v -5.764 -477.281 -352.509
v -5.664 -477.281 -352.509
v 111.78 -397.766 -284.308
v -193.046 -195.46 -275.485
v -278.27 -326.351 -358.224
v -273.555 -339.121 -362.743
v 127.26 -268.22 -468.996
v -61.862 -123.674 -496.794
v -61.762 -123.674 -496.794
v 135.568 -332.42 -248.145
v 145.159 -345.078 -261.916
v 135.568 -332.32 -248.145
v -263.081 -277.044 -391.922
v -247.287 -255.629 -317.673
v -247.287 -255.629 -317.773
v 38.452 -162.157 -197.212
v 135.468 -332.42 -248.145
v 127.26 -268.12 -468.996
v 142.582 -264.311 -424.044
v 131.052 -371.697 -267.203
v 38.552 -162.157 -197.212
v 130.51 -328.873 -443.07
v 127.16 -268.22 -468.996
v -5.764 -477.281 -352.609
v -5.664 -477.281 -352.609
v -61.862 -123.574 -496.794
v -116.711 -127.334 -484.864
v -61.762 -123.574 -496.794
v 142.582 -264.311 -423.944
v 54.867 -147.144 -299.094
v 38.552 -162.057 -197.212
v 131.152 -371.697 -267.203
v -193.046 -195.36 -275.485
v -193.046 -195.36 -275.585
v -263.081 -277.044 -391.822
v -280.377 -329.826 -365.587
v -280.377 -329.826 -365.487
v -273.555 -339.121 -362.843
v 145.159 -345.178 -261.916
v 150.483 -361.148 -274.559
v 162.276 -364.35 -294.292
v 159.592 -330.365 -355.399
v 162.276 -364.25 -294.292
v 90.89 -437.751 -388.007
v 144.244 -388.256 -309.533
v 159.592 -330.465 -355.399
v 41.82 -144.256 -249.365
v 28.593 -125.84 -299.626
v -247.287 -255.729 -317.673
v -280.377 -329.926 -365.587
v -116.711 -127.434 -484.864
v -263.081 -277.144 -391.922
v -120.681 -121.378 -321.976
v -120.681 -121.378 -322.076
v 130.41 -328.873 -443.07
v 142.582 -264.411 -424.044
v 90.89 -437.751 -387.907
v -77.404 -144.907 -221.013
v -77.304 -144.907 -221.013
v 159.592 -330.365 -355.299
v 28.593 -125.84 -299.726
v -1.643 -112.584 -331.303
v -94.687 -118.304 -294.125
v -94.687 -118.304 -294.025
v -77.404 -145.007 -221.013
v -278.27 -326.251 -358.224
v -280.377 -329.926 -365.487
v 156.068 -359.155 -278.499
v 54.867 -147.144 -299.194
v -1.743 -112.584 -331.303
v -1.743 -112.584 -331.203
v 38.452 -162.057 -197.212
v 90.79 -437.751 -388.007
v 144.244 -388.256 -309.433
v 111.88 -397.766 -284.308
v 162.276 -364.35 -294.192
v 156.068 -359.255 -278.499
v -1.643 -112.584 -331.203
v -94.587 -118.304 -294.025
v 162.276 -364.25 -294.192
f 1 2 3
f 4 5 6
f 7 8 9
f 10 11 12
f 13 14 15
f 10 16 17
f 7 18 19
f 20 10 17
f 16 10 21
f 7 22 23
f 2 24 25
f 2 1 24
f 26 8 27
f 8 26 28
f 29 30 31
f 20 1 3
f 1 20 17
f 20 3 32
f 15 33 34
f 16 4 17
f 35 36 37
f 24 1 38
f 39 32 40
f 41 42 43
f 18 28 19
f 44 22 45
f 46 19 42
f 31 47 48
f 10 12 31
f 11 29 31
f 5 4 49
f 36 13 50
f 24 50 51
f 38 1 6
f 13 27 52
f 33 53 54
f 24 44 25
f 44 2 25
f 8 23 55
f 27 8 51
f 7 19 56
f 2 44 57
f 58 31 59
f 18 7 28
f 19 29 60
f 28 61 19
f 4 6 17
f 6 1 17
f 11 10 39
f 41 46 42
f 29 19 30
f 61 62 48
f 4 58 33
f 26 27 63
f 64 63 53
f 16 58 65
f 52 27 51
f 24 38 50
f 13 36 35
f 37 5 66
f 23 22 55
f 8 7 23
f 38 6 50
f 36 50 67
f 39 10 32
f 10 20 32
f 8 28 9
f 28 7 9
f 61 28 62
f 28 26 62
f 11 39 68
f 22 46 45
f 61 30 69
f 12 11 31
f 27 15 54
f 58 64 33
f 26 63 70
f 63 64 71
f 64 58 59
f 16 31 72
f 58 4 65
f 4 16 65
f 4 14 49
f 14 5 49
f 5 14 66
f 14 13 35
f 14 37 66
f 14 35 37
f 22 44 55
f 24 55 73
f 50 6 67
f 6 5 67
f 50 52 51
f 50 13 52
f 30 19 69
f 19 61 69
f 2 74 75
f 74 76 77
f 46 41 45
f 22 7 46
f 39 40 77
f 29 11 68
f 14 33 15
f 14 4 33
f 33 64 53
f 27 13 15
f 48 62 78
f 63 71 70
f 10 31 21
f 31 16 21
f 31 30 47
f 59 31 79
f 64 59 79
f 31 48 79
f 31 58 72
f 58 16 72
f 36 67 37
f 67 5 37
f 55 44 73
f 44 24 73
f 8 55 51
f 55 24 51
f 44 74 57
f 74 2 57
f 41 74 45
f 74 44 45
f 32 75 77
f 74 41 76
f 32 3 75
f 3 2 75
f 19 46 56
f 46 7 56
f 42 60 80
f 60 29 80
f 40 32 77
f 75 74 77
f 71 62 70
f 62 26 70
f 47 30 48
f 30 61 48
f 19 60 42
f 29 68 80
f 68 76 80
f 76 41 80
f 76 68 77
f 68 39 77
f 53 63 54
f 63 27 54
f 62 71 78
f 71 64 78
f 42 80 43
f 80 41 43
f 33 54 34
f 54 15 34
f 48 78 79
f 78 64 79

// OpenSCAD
hull(){ translate([-5.76355066771,-477.281225452,-352.608798115])cube(0.1,0.1,0.1);
translate([90.7898174832,-437.750816523,-388.007108549])cube(0.1,0.1,0.1);
translate([111.78017532,-397.766351989,-284.408293999])cube(0.1,0.1,0.1);
translate([144.144126739,-388.255892581,-309.532940495])cube(0.1,0.1,0.1);
translate([162.176215042,-364.349714906,-294.291532524])cube(0.1,0.1,0.1);
translate([159.492269725,-330.464905277,-355.399216085])cube(0.1,0.1,0.1);
translate([130.410177277,-328.872819924,-443.070049523])cube(0.1,0.1,0.1);
translate([135.467518347,-332.4204947,-248.245447132])cube(0.1,0.1,0.1);
translate([131.051770306,-371.697411485,-267.302886046])cube(0.1,0.1,0.1);
translate([38.4515561989,-162.157481129,-197.312067004])cube(0.1,0.1,0.1);
translate([41.7197932371,-144.356019815,-249.464785699])cube(0.1,0.1,0.1);
translate([155.967563583,-359.255436786,-278.599336528])cube(0.1,0.1,0.1);
translate([145.059288538,-345.177865613,-262.015810277])cube(0.1,0.1,0.1);
translate([150.382695507,-361.148086522,-274.65890183])cube(0.1,0.1,0.1);
translate([-116.710625471,-127.434061794,-484.86435569])cube(0.1,0.1,0.1);
translate([-77.4044795784,-145.006587615,-221.113306983])cube(0.1,0.1,0.1);
translate([-94.6865889213,-118.403790087,-294.125364431])cube(0.1,0.1,0.1);
translate([-193.045638572,-195.46006625,-275.585204269])cube(0.1,0.1,0.1);
translate([-120.681063123,-121.478405316,-322.07641196])cube(0.1,0.1,0.1);
translate([-247.287449393,-255.728744939,-317.773279352])cube(0.1,0.1,0.1);
translate([-263.080866705,-277.143548075,-391.92203521])cube(0.1,0.1,0.1);
translate([-278.27027027,-326.351351351,-358.324324324])cube(0.1,0.1,0.1);
translate([-280.377454731,-329.926039276,-365.586585055])cube(0.1,0.1,0.1);
translate([-273.555259654,-339.121171771,-362.842876165])cube(0.1,0.1,0.1);
translate([54.7670048854,-147.243517475,-299.193912063])cube(0.1,0.1,0.1);
translate([-1.74283765348,-112.684174625,-331.302864939])cube(0.1,0.1,0.1);
translate([28.4930282445,-125.940293171,-299.726492671])cube(0.1,0.1,0.1);
translate([-61.8624833111,-123.673787272,-496.793502448])cube(0.1,0.1,0.1);
translate([142.482182855,-264.410507025,-424.043982896])cube(0.1,0.1,0.1);
translate([127.159503956,-268.220012829,-468.996151379])cube(0.1,0.1,0.1); }
